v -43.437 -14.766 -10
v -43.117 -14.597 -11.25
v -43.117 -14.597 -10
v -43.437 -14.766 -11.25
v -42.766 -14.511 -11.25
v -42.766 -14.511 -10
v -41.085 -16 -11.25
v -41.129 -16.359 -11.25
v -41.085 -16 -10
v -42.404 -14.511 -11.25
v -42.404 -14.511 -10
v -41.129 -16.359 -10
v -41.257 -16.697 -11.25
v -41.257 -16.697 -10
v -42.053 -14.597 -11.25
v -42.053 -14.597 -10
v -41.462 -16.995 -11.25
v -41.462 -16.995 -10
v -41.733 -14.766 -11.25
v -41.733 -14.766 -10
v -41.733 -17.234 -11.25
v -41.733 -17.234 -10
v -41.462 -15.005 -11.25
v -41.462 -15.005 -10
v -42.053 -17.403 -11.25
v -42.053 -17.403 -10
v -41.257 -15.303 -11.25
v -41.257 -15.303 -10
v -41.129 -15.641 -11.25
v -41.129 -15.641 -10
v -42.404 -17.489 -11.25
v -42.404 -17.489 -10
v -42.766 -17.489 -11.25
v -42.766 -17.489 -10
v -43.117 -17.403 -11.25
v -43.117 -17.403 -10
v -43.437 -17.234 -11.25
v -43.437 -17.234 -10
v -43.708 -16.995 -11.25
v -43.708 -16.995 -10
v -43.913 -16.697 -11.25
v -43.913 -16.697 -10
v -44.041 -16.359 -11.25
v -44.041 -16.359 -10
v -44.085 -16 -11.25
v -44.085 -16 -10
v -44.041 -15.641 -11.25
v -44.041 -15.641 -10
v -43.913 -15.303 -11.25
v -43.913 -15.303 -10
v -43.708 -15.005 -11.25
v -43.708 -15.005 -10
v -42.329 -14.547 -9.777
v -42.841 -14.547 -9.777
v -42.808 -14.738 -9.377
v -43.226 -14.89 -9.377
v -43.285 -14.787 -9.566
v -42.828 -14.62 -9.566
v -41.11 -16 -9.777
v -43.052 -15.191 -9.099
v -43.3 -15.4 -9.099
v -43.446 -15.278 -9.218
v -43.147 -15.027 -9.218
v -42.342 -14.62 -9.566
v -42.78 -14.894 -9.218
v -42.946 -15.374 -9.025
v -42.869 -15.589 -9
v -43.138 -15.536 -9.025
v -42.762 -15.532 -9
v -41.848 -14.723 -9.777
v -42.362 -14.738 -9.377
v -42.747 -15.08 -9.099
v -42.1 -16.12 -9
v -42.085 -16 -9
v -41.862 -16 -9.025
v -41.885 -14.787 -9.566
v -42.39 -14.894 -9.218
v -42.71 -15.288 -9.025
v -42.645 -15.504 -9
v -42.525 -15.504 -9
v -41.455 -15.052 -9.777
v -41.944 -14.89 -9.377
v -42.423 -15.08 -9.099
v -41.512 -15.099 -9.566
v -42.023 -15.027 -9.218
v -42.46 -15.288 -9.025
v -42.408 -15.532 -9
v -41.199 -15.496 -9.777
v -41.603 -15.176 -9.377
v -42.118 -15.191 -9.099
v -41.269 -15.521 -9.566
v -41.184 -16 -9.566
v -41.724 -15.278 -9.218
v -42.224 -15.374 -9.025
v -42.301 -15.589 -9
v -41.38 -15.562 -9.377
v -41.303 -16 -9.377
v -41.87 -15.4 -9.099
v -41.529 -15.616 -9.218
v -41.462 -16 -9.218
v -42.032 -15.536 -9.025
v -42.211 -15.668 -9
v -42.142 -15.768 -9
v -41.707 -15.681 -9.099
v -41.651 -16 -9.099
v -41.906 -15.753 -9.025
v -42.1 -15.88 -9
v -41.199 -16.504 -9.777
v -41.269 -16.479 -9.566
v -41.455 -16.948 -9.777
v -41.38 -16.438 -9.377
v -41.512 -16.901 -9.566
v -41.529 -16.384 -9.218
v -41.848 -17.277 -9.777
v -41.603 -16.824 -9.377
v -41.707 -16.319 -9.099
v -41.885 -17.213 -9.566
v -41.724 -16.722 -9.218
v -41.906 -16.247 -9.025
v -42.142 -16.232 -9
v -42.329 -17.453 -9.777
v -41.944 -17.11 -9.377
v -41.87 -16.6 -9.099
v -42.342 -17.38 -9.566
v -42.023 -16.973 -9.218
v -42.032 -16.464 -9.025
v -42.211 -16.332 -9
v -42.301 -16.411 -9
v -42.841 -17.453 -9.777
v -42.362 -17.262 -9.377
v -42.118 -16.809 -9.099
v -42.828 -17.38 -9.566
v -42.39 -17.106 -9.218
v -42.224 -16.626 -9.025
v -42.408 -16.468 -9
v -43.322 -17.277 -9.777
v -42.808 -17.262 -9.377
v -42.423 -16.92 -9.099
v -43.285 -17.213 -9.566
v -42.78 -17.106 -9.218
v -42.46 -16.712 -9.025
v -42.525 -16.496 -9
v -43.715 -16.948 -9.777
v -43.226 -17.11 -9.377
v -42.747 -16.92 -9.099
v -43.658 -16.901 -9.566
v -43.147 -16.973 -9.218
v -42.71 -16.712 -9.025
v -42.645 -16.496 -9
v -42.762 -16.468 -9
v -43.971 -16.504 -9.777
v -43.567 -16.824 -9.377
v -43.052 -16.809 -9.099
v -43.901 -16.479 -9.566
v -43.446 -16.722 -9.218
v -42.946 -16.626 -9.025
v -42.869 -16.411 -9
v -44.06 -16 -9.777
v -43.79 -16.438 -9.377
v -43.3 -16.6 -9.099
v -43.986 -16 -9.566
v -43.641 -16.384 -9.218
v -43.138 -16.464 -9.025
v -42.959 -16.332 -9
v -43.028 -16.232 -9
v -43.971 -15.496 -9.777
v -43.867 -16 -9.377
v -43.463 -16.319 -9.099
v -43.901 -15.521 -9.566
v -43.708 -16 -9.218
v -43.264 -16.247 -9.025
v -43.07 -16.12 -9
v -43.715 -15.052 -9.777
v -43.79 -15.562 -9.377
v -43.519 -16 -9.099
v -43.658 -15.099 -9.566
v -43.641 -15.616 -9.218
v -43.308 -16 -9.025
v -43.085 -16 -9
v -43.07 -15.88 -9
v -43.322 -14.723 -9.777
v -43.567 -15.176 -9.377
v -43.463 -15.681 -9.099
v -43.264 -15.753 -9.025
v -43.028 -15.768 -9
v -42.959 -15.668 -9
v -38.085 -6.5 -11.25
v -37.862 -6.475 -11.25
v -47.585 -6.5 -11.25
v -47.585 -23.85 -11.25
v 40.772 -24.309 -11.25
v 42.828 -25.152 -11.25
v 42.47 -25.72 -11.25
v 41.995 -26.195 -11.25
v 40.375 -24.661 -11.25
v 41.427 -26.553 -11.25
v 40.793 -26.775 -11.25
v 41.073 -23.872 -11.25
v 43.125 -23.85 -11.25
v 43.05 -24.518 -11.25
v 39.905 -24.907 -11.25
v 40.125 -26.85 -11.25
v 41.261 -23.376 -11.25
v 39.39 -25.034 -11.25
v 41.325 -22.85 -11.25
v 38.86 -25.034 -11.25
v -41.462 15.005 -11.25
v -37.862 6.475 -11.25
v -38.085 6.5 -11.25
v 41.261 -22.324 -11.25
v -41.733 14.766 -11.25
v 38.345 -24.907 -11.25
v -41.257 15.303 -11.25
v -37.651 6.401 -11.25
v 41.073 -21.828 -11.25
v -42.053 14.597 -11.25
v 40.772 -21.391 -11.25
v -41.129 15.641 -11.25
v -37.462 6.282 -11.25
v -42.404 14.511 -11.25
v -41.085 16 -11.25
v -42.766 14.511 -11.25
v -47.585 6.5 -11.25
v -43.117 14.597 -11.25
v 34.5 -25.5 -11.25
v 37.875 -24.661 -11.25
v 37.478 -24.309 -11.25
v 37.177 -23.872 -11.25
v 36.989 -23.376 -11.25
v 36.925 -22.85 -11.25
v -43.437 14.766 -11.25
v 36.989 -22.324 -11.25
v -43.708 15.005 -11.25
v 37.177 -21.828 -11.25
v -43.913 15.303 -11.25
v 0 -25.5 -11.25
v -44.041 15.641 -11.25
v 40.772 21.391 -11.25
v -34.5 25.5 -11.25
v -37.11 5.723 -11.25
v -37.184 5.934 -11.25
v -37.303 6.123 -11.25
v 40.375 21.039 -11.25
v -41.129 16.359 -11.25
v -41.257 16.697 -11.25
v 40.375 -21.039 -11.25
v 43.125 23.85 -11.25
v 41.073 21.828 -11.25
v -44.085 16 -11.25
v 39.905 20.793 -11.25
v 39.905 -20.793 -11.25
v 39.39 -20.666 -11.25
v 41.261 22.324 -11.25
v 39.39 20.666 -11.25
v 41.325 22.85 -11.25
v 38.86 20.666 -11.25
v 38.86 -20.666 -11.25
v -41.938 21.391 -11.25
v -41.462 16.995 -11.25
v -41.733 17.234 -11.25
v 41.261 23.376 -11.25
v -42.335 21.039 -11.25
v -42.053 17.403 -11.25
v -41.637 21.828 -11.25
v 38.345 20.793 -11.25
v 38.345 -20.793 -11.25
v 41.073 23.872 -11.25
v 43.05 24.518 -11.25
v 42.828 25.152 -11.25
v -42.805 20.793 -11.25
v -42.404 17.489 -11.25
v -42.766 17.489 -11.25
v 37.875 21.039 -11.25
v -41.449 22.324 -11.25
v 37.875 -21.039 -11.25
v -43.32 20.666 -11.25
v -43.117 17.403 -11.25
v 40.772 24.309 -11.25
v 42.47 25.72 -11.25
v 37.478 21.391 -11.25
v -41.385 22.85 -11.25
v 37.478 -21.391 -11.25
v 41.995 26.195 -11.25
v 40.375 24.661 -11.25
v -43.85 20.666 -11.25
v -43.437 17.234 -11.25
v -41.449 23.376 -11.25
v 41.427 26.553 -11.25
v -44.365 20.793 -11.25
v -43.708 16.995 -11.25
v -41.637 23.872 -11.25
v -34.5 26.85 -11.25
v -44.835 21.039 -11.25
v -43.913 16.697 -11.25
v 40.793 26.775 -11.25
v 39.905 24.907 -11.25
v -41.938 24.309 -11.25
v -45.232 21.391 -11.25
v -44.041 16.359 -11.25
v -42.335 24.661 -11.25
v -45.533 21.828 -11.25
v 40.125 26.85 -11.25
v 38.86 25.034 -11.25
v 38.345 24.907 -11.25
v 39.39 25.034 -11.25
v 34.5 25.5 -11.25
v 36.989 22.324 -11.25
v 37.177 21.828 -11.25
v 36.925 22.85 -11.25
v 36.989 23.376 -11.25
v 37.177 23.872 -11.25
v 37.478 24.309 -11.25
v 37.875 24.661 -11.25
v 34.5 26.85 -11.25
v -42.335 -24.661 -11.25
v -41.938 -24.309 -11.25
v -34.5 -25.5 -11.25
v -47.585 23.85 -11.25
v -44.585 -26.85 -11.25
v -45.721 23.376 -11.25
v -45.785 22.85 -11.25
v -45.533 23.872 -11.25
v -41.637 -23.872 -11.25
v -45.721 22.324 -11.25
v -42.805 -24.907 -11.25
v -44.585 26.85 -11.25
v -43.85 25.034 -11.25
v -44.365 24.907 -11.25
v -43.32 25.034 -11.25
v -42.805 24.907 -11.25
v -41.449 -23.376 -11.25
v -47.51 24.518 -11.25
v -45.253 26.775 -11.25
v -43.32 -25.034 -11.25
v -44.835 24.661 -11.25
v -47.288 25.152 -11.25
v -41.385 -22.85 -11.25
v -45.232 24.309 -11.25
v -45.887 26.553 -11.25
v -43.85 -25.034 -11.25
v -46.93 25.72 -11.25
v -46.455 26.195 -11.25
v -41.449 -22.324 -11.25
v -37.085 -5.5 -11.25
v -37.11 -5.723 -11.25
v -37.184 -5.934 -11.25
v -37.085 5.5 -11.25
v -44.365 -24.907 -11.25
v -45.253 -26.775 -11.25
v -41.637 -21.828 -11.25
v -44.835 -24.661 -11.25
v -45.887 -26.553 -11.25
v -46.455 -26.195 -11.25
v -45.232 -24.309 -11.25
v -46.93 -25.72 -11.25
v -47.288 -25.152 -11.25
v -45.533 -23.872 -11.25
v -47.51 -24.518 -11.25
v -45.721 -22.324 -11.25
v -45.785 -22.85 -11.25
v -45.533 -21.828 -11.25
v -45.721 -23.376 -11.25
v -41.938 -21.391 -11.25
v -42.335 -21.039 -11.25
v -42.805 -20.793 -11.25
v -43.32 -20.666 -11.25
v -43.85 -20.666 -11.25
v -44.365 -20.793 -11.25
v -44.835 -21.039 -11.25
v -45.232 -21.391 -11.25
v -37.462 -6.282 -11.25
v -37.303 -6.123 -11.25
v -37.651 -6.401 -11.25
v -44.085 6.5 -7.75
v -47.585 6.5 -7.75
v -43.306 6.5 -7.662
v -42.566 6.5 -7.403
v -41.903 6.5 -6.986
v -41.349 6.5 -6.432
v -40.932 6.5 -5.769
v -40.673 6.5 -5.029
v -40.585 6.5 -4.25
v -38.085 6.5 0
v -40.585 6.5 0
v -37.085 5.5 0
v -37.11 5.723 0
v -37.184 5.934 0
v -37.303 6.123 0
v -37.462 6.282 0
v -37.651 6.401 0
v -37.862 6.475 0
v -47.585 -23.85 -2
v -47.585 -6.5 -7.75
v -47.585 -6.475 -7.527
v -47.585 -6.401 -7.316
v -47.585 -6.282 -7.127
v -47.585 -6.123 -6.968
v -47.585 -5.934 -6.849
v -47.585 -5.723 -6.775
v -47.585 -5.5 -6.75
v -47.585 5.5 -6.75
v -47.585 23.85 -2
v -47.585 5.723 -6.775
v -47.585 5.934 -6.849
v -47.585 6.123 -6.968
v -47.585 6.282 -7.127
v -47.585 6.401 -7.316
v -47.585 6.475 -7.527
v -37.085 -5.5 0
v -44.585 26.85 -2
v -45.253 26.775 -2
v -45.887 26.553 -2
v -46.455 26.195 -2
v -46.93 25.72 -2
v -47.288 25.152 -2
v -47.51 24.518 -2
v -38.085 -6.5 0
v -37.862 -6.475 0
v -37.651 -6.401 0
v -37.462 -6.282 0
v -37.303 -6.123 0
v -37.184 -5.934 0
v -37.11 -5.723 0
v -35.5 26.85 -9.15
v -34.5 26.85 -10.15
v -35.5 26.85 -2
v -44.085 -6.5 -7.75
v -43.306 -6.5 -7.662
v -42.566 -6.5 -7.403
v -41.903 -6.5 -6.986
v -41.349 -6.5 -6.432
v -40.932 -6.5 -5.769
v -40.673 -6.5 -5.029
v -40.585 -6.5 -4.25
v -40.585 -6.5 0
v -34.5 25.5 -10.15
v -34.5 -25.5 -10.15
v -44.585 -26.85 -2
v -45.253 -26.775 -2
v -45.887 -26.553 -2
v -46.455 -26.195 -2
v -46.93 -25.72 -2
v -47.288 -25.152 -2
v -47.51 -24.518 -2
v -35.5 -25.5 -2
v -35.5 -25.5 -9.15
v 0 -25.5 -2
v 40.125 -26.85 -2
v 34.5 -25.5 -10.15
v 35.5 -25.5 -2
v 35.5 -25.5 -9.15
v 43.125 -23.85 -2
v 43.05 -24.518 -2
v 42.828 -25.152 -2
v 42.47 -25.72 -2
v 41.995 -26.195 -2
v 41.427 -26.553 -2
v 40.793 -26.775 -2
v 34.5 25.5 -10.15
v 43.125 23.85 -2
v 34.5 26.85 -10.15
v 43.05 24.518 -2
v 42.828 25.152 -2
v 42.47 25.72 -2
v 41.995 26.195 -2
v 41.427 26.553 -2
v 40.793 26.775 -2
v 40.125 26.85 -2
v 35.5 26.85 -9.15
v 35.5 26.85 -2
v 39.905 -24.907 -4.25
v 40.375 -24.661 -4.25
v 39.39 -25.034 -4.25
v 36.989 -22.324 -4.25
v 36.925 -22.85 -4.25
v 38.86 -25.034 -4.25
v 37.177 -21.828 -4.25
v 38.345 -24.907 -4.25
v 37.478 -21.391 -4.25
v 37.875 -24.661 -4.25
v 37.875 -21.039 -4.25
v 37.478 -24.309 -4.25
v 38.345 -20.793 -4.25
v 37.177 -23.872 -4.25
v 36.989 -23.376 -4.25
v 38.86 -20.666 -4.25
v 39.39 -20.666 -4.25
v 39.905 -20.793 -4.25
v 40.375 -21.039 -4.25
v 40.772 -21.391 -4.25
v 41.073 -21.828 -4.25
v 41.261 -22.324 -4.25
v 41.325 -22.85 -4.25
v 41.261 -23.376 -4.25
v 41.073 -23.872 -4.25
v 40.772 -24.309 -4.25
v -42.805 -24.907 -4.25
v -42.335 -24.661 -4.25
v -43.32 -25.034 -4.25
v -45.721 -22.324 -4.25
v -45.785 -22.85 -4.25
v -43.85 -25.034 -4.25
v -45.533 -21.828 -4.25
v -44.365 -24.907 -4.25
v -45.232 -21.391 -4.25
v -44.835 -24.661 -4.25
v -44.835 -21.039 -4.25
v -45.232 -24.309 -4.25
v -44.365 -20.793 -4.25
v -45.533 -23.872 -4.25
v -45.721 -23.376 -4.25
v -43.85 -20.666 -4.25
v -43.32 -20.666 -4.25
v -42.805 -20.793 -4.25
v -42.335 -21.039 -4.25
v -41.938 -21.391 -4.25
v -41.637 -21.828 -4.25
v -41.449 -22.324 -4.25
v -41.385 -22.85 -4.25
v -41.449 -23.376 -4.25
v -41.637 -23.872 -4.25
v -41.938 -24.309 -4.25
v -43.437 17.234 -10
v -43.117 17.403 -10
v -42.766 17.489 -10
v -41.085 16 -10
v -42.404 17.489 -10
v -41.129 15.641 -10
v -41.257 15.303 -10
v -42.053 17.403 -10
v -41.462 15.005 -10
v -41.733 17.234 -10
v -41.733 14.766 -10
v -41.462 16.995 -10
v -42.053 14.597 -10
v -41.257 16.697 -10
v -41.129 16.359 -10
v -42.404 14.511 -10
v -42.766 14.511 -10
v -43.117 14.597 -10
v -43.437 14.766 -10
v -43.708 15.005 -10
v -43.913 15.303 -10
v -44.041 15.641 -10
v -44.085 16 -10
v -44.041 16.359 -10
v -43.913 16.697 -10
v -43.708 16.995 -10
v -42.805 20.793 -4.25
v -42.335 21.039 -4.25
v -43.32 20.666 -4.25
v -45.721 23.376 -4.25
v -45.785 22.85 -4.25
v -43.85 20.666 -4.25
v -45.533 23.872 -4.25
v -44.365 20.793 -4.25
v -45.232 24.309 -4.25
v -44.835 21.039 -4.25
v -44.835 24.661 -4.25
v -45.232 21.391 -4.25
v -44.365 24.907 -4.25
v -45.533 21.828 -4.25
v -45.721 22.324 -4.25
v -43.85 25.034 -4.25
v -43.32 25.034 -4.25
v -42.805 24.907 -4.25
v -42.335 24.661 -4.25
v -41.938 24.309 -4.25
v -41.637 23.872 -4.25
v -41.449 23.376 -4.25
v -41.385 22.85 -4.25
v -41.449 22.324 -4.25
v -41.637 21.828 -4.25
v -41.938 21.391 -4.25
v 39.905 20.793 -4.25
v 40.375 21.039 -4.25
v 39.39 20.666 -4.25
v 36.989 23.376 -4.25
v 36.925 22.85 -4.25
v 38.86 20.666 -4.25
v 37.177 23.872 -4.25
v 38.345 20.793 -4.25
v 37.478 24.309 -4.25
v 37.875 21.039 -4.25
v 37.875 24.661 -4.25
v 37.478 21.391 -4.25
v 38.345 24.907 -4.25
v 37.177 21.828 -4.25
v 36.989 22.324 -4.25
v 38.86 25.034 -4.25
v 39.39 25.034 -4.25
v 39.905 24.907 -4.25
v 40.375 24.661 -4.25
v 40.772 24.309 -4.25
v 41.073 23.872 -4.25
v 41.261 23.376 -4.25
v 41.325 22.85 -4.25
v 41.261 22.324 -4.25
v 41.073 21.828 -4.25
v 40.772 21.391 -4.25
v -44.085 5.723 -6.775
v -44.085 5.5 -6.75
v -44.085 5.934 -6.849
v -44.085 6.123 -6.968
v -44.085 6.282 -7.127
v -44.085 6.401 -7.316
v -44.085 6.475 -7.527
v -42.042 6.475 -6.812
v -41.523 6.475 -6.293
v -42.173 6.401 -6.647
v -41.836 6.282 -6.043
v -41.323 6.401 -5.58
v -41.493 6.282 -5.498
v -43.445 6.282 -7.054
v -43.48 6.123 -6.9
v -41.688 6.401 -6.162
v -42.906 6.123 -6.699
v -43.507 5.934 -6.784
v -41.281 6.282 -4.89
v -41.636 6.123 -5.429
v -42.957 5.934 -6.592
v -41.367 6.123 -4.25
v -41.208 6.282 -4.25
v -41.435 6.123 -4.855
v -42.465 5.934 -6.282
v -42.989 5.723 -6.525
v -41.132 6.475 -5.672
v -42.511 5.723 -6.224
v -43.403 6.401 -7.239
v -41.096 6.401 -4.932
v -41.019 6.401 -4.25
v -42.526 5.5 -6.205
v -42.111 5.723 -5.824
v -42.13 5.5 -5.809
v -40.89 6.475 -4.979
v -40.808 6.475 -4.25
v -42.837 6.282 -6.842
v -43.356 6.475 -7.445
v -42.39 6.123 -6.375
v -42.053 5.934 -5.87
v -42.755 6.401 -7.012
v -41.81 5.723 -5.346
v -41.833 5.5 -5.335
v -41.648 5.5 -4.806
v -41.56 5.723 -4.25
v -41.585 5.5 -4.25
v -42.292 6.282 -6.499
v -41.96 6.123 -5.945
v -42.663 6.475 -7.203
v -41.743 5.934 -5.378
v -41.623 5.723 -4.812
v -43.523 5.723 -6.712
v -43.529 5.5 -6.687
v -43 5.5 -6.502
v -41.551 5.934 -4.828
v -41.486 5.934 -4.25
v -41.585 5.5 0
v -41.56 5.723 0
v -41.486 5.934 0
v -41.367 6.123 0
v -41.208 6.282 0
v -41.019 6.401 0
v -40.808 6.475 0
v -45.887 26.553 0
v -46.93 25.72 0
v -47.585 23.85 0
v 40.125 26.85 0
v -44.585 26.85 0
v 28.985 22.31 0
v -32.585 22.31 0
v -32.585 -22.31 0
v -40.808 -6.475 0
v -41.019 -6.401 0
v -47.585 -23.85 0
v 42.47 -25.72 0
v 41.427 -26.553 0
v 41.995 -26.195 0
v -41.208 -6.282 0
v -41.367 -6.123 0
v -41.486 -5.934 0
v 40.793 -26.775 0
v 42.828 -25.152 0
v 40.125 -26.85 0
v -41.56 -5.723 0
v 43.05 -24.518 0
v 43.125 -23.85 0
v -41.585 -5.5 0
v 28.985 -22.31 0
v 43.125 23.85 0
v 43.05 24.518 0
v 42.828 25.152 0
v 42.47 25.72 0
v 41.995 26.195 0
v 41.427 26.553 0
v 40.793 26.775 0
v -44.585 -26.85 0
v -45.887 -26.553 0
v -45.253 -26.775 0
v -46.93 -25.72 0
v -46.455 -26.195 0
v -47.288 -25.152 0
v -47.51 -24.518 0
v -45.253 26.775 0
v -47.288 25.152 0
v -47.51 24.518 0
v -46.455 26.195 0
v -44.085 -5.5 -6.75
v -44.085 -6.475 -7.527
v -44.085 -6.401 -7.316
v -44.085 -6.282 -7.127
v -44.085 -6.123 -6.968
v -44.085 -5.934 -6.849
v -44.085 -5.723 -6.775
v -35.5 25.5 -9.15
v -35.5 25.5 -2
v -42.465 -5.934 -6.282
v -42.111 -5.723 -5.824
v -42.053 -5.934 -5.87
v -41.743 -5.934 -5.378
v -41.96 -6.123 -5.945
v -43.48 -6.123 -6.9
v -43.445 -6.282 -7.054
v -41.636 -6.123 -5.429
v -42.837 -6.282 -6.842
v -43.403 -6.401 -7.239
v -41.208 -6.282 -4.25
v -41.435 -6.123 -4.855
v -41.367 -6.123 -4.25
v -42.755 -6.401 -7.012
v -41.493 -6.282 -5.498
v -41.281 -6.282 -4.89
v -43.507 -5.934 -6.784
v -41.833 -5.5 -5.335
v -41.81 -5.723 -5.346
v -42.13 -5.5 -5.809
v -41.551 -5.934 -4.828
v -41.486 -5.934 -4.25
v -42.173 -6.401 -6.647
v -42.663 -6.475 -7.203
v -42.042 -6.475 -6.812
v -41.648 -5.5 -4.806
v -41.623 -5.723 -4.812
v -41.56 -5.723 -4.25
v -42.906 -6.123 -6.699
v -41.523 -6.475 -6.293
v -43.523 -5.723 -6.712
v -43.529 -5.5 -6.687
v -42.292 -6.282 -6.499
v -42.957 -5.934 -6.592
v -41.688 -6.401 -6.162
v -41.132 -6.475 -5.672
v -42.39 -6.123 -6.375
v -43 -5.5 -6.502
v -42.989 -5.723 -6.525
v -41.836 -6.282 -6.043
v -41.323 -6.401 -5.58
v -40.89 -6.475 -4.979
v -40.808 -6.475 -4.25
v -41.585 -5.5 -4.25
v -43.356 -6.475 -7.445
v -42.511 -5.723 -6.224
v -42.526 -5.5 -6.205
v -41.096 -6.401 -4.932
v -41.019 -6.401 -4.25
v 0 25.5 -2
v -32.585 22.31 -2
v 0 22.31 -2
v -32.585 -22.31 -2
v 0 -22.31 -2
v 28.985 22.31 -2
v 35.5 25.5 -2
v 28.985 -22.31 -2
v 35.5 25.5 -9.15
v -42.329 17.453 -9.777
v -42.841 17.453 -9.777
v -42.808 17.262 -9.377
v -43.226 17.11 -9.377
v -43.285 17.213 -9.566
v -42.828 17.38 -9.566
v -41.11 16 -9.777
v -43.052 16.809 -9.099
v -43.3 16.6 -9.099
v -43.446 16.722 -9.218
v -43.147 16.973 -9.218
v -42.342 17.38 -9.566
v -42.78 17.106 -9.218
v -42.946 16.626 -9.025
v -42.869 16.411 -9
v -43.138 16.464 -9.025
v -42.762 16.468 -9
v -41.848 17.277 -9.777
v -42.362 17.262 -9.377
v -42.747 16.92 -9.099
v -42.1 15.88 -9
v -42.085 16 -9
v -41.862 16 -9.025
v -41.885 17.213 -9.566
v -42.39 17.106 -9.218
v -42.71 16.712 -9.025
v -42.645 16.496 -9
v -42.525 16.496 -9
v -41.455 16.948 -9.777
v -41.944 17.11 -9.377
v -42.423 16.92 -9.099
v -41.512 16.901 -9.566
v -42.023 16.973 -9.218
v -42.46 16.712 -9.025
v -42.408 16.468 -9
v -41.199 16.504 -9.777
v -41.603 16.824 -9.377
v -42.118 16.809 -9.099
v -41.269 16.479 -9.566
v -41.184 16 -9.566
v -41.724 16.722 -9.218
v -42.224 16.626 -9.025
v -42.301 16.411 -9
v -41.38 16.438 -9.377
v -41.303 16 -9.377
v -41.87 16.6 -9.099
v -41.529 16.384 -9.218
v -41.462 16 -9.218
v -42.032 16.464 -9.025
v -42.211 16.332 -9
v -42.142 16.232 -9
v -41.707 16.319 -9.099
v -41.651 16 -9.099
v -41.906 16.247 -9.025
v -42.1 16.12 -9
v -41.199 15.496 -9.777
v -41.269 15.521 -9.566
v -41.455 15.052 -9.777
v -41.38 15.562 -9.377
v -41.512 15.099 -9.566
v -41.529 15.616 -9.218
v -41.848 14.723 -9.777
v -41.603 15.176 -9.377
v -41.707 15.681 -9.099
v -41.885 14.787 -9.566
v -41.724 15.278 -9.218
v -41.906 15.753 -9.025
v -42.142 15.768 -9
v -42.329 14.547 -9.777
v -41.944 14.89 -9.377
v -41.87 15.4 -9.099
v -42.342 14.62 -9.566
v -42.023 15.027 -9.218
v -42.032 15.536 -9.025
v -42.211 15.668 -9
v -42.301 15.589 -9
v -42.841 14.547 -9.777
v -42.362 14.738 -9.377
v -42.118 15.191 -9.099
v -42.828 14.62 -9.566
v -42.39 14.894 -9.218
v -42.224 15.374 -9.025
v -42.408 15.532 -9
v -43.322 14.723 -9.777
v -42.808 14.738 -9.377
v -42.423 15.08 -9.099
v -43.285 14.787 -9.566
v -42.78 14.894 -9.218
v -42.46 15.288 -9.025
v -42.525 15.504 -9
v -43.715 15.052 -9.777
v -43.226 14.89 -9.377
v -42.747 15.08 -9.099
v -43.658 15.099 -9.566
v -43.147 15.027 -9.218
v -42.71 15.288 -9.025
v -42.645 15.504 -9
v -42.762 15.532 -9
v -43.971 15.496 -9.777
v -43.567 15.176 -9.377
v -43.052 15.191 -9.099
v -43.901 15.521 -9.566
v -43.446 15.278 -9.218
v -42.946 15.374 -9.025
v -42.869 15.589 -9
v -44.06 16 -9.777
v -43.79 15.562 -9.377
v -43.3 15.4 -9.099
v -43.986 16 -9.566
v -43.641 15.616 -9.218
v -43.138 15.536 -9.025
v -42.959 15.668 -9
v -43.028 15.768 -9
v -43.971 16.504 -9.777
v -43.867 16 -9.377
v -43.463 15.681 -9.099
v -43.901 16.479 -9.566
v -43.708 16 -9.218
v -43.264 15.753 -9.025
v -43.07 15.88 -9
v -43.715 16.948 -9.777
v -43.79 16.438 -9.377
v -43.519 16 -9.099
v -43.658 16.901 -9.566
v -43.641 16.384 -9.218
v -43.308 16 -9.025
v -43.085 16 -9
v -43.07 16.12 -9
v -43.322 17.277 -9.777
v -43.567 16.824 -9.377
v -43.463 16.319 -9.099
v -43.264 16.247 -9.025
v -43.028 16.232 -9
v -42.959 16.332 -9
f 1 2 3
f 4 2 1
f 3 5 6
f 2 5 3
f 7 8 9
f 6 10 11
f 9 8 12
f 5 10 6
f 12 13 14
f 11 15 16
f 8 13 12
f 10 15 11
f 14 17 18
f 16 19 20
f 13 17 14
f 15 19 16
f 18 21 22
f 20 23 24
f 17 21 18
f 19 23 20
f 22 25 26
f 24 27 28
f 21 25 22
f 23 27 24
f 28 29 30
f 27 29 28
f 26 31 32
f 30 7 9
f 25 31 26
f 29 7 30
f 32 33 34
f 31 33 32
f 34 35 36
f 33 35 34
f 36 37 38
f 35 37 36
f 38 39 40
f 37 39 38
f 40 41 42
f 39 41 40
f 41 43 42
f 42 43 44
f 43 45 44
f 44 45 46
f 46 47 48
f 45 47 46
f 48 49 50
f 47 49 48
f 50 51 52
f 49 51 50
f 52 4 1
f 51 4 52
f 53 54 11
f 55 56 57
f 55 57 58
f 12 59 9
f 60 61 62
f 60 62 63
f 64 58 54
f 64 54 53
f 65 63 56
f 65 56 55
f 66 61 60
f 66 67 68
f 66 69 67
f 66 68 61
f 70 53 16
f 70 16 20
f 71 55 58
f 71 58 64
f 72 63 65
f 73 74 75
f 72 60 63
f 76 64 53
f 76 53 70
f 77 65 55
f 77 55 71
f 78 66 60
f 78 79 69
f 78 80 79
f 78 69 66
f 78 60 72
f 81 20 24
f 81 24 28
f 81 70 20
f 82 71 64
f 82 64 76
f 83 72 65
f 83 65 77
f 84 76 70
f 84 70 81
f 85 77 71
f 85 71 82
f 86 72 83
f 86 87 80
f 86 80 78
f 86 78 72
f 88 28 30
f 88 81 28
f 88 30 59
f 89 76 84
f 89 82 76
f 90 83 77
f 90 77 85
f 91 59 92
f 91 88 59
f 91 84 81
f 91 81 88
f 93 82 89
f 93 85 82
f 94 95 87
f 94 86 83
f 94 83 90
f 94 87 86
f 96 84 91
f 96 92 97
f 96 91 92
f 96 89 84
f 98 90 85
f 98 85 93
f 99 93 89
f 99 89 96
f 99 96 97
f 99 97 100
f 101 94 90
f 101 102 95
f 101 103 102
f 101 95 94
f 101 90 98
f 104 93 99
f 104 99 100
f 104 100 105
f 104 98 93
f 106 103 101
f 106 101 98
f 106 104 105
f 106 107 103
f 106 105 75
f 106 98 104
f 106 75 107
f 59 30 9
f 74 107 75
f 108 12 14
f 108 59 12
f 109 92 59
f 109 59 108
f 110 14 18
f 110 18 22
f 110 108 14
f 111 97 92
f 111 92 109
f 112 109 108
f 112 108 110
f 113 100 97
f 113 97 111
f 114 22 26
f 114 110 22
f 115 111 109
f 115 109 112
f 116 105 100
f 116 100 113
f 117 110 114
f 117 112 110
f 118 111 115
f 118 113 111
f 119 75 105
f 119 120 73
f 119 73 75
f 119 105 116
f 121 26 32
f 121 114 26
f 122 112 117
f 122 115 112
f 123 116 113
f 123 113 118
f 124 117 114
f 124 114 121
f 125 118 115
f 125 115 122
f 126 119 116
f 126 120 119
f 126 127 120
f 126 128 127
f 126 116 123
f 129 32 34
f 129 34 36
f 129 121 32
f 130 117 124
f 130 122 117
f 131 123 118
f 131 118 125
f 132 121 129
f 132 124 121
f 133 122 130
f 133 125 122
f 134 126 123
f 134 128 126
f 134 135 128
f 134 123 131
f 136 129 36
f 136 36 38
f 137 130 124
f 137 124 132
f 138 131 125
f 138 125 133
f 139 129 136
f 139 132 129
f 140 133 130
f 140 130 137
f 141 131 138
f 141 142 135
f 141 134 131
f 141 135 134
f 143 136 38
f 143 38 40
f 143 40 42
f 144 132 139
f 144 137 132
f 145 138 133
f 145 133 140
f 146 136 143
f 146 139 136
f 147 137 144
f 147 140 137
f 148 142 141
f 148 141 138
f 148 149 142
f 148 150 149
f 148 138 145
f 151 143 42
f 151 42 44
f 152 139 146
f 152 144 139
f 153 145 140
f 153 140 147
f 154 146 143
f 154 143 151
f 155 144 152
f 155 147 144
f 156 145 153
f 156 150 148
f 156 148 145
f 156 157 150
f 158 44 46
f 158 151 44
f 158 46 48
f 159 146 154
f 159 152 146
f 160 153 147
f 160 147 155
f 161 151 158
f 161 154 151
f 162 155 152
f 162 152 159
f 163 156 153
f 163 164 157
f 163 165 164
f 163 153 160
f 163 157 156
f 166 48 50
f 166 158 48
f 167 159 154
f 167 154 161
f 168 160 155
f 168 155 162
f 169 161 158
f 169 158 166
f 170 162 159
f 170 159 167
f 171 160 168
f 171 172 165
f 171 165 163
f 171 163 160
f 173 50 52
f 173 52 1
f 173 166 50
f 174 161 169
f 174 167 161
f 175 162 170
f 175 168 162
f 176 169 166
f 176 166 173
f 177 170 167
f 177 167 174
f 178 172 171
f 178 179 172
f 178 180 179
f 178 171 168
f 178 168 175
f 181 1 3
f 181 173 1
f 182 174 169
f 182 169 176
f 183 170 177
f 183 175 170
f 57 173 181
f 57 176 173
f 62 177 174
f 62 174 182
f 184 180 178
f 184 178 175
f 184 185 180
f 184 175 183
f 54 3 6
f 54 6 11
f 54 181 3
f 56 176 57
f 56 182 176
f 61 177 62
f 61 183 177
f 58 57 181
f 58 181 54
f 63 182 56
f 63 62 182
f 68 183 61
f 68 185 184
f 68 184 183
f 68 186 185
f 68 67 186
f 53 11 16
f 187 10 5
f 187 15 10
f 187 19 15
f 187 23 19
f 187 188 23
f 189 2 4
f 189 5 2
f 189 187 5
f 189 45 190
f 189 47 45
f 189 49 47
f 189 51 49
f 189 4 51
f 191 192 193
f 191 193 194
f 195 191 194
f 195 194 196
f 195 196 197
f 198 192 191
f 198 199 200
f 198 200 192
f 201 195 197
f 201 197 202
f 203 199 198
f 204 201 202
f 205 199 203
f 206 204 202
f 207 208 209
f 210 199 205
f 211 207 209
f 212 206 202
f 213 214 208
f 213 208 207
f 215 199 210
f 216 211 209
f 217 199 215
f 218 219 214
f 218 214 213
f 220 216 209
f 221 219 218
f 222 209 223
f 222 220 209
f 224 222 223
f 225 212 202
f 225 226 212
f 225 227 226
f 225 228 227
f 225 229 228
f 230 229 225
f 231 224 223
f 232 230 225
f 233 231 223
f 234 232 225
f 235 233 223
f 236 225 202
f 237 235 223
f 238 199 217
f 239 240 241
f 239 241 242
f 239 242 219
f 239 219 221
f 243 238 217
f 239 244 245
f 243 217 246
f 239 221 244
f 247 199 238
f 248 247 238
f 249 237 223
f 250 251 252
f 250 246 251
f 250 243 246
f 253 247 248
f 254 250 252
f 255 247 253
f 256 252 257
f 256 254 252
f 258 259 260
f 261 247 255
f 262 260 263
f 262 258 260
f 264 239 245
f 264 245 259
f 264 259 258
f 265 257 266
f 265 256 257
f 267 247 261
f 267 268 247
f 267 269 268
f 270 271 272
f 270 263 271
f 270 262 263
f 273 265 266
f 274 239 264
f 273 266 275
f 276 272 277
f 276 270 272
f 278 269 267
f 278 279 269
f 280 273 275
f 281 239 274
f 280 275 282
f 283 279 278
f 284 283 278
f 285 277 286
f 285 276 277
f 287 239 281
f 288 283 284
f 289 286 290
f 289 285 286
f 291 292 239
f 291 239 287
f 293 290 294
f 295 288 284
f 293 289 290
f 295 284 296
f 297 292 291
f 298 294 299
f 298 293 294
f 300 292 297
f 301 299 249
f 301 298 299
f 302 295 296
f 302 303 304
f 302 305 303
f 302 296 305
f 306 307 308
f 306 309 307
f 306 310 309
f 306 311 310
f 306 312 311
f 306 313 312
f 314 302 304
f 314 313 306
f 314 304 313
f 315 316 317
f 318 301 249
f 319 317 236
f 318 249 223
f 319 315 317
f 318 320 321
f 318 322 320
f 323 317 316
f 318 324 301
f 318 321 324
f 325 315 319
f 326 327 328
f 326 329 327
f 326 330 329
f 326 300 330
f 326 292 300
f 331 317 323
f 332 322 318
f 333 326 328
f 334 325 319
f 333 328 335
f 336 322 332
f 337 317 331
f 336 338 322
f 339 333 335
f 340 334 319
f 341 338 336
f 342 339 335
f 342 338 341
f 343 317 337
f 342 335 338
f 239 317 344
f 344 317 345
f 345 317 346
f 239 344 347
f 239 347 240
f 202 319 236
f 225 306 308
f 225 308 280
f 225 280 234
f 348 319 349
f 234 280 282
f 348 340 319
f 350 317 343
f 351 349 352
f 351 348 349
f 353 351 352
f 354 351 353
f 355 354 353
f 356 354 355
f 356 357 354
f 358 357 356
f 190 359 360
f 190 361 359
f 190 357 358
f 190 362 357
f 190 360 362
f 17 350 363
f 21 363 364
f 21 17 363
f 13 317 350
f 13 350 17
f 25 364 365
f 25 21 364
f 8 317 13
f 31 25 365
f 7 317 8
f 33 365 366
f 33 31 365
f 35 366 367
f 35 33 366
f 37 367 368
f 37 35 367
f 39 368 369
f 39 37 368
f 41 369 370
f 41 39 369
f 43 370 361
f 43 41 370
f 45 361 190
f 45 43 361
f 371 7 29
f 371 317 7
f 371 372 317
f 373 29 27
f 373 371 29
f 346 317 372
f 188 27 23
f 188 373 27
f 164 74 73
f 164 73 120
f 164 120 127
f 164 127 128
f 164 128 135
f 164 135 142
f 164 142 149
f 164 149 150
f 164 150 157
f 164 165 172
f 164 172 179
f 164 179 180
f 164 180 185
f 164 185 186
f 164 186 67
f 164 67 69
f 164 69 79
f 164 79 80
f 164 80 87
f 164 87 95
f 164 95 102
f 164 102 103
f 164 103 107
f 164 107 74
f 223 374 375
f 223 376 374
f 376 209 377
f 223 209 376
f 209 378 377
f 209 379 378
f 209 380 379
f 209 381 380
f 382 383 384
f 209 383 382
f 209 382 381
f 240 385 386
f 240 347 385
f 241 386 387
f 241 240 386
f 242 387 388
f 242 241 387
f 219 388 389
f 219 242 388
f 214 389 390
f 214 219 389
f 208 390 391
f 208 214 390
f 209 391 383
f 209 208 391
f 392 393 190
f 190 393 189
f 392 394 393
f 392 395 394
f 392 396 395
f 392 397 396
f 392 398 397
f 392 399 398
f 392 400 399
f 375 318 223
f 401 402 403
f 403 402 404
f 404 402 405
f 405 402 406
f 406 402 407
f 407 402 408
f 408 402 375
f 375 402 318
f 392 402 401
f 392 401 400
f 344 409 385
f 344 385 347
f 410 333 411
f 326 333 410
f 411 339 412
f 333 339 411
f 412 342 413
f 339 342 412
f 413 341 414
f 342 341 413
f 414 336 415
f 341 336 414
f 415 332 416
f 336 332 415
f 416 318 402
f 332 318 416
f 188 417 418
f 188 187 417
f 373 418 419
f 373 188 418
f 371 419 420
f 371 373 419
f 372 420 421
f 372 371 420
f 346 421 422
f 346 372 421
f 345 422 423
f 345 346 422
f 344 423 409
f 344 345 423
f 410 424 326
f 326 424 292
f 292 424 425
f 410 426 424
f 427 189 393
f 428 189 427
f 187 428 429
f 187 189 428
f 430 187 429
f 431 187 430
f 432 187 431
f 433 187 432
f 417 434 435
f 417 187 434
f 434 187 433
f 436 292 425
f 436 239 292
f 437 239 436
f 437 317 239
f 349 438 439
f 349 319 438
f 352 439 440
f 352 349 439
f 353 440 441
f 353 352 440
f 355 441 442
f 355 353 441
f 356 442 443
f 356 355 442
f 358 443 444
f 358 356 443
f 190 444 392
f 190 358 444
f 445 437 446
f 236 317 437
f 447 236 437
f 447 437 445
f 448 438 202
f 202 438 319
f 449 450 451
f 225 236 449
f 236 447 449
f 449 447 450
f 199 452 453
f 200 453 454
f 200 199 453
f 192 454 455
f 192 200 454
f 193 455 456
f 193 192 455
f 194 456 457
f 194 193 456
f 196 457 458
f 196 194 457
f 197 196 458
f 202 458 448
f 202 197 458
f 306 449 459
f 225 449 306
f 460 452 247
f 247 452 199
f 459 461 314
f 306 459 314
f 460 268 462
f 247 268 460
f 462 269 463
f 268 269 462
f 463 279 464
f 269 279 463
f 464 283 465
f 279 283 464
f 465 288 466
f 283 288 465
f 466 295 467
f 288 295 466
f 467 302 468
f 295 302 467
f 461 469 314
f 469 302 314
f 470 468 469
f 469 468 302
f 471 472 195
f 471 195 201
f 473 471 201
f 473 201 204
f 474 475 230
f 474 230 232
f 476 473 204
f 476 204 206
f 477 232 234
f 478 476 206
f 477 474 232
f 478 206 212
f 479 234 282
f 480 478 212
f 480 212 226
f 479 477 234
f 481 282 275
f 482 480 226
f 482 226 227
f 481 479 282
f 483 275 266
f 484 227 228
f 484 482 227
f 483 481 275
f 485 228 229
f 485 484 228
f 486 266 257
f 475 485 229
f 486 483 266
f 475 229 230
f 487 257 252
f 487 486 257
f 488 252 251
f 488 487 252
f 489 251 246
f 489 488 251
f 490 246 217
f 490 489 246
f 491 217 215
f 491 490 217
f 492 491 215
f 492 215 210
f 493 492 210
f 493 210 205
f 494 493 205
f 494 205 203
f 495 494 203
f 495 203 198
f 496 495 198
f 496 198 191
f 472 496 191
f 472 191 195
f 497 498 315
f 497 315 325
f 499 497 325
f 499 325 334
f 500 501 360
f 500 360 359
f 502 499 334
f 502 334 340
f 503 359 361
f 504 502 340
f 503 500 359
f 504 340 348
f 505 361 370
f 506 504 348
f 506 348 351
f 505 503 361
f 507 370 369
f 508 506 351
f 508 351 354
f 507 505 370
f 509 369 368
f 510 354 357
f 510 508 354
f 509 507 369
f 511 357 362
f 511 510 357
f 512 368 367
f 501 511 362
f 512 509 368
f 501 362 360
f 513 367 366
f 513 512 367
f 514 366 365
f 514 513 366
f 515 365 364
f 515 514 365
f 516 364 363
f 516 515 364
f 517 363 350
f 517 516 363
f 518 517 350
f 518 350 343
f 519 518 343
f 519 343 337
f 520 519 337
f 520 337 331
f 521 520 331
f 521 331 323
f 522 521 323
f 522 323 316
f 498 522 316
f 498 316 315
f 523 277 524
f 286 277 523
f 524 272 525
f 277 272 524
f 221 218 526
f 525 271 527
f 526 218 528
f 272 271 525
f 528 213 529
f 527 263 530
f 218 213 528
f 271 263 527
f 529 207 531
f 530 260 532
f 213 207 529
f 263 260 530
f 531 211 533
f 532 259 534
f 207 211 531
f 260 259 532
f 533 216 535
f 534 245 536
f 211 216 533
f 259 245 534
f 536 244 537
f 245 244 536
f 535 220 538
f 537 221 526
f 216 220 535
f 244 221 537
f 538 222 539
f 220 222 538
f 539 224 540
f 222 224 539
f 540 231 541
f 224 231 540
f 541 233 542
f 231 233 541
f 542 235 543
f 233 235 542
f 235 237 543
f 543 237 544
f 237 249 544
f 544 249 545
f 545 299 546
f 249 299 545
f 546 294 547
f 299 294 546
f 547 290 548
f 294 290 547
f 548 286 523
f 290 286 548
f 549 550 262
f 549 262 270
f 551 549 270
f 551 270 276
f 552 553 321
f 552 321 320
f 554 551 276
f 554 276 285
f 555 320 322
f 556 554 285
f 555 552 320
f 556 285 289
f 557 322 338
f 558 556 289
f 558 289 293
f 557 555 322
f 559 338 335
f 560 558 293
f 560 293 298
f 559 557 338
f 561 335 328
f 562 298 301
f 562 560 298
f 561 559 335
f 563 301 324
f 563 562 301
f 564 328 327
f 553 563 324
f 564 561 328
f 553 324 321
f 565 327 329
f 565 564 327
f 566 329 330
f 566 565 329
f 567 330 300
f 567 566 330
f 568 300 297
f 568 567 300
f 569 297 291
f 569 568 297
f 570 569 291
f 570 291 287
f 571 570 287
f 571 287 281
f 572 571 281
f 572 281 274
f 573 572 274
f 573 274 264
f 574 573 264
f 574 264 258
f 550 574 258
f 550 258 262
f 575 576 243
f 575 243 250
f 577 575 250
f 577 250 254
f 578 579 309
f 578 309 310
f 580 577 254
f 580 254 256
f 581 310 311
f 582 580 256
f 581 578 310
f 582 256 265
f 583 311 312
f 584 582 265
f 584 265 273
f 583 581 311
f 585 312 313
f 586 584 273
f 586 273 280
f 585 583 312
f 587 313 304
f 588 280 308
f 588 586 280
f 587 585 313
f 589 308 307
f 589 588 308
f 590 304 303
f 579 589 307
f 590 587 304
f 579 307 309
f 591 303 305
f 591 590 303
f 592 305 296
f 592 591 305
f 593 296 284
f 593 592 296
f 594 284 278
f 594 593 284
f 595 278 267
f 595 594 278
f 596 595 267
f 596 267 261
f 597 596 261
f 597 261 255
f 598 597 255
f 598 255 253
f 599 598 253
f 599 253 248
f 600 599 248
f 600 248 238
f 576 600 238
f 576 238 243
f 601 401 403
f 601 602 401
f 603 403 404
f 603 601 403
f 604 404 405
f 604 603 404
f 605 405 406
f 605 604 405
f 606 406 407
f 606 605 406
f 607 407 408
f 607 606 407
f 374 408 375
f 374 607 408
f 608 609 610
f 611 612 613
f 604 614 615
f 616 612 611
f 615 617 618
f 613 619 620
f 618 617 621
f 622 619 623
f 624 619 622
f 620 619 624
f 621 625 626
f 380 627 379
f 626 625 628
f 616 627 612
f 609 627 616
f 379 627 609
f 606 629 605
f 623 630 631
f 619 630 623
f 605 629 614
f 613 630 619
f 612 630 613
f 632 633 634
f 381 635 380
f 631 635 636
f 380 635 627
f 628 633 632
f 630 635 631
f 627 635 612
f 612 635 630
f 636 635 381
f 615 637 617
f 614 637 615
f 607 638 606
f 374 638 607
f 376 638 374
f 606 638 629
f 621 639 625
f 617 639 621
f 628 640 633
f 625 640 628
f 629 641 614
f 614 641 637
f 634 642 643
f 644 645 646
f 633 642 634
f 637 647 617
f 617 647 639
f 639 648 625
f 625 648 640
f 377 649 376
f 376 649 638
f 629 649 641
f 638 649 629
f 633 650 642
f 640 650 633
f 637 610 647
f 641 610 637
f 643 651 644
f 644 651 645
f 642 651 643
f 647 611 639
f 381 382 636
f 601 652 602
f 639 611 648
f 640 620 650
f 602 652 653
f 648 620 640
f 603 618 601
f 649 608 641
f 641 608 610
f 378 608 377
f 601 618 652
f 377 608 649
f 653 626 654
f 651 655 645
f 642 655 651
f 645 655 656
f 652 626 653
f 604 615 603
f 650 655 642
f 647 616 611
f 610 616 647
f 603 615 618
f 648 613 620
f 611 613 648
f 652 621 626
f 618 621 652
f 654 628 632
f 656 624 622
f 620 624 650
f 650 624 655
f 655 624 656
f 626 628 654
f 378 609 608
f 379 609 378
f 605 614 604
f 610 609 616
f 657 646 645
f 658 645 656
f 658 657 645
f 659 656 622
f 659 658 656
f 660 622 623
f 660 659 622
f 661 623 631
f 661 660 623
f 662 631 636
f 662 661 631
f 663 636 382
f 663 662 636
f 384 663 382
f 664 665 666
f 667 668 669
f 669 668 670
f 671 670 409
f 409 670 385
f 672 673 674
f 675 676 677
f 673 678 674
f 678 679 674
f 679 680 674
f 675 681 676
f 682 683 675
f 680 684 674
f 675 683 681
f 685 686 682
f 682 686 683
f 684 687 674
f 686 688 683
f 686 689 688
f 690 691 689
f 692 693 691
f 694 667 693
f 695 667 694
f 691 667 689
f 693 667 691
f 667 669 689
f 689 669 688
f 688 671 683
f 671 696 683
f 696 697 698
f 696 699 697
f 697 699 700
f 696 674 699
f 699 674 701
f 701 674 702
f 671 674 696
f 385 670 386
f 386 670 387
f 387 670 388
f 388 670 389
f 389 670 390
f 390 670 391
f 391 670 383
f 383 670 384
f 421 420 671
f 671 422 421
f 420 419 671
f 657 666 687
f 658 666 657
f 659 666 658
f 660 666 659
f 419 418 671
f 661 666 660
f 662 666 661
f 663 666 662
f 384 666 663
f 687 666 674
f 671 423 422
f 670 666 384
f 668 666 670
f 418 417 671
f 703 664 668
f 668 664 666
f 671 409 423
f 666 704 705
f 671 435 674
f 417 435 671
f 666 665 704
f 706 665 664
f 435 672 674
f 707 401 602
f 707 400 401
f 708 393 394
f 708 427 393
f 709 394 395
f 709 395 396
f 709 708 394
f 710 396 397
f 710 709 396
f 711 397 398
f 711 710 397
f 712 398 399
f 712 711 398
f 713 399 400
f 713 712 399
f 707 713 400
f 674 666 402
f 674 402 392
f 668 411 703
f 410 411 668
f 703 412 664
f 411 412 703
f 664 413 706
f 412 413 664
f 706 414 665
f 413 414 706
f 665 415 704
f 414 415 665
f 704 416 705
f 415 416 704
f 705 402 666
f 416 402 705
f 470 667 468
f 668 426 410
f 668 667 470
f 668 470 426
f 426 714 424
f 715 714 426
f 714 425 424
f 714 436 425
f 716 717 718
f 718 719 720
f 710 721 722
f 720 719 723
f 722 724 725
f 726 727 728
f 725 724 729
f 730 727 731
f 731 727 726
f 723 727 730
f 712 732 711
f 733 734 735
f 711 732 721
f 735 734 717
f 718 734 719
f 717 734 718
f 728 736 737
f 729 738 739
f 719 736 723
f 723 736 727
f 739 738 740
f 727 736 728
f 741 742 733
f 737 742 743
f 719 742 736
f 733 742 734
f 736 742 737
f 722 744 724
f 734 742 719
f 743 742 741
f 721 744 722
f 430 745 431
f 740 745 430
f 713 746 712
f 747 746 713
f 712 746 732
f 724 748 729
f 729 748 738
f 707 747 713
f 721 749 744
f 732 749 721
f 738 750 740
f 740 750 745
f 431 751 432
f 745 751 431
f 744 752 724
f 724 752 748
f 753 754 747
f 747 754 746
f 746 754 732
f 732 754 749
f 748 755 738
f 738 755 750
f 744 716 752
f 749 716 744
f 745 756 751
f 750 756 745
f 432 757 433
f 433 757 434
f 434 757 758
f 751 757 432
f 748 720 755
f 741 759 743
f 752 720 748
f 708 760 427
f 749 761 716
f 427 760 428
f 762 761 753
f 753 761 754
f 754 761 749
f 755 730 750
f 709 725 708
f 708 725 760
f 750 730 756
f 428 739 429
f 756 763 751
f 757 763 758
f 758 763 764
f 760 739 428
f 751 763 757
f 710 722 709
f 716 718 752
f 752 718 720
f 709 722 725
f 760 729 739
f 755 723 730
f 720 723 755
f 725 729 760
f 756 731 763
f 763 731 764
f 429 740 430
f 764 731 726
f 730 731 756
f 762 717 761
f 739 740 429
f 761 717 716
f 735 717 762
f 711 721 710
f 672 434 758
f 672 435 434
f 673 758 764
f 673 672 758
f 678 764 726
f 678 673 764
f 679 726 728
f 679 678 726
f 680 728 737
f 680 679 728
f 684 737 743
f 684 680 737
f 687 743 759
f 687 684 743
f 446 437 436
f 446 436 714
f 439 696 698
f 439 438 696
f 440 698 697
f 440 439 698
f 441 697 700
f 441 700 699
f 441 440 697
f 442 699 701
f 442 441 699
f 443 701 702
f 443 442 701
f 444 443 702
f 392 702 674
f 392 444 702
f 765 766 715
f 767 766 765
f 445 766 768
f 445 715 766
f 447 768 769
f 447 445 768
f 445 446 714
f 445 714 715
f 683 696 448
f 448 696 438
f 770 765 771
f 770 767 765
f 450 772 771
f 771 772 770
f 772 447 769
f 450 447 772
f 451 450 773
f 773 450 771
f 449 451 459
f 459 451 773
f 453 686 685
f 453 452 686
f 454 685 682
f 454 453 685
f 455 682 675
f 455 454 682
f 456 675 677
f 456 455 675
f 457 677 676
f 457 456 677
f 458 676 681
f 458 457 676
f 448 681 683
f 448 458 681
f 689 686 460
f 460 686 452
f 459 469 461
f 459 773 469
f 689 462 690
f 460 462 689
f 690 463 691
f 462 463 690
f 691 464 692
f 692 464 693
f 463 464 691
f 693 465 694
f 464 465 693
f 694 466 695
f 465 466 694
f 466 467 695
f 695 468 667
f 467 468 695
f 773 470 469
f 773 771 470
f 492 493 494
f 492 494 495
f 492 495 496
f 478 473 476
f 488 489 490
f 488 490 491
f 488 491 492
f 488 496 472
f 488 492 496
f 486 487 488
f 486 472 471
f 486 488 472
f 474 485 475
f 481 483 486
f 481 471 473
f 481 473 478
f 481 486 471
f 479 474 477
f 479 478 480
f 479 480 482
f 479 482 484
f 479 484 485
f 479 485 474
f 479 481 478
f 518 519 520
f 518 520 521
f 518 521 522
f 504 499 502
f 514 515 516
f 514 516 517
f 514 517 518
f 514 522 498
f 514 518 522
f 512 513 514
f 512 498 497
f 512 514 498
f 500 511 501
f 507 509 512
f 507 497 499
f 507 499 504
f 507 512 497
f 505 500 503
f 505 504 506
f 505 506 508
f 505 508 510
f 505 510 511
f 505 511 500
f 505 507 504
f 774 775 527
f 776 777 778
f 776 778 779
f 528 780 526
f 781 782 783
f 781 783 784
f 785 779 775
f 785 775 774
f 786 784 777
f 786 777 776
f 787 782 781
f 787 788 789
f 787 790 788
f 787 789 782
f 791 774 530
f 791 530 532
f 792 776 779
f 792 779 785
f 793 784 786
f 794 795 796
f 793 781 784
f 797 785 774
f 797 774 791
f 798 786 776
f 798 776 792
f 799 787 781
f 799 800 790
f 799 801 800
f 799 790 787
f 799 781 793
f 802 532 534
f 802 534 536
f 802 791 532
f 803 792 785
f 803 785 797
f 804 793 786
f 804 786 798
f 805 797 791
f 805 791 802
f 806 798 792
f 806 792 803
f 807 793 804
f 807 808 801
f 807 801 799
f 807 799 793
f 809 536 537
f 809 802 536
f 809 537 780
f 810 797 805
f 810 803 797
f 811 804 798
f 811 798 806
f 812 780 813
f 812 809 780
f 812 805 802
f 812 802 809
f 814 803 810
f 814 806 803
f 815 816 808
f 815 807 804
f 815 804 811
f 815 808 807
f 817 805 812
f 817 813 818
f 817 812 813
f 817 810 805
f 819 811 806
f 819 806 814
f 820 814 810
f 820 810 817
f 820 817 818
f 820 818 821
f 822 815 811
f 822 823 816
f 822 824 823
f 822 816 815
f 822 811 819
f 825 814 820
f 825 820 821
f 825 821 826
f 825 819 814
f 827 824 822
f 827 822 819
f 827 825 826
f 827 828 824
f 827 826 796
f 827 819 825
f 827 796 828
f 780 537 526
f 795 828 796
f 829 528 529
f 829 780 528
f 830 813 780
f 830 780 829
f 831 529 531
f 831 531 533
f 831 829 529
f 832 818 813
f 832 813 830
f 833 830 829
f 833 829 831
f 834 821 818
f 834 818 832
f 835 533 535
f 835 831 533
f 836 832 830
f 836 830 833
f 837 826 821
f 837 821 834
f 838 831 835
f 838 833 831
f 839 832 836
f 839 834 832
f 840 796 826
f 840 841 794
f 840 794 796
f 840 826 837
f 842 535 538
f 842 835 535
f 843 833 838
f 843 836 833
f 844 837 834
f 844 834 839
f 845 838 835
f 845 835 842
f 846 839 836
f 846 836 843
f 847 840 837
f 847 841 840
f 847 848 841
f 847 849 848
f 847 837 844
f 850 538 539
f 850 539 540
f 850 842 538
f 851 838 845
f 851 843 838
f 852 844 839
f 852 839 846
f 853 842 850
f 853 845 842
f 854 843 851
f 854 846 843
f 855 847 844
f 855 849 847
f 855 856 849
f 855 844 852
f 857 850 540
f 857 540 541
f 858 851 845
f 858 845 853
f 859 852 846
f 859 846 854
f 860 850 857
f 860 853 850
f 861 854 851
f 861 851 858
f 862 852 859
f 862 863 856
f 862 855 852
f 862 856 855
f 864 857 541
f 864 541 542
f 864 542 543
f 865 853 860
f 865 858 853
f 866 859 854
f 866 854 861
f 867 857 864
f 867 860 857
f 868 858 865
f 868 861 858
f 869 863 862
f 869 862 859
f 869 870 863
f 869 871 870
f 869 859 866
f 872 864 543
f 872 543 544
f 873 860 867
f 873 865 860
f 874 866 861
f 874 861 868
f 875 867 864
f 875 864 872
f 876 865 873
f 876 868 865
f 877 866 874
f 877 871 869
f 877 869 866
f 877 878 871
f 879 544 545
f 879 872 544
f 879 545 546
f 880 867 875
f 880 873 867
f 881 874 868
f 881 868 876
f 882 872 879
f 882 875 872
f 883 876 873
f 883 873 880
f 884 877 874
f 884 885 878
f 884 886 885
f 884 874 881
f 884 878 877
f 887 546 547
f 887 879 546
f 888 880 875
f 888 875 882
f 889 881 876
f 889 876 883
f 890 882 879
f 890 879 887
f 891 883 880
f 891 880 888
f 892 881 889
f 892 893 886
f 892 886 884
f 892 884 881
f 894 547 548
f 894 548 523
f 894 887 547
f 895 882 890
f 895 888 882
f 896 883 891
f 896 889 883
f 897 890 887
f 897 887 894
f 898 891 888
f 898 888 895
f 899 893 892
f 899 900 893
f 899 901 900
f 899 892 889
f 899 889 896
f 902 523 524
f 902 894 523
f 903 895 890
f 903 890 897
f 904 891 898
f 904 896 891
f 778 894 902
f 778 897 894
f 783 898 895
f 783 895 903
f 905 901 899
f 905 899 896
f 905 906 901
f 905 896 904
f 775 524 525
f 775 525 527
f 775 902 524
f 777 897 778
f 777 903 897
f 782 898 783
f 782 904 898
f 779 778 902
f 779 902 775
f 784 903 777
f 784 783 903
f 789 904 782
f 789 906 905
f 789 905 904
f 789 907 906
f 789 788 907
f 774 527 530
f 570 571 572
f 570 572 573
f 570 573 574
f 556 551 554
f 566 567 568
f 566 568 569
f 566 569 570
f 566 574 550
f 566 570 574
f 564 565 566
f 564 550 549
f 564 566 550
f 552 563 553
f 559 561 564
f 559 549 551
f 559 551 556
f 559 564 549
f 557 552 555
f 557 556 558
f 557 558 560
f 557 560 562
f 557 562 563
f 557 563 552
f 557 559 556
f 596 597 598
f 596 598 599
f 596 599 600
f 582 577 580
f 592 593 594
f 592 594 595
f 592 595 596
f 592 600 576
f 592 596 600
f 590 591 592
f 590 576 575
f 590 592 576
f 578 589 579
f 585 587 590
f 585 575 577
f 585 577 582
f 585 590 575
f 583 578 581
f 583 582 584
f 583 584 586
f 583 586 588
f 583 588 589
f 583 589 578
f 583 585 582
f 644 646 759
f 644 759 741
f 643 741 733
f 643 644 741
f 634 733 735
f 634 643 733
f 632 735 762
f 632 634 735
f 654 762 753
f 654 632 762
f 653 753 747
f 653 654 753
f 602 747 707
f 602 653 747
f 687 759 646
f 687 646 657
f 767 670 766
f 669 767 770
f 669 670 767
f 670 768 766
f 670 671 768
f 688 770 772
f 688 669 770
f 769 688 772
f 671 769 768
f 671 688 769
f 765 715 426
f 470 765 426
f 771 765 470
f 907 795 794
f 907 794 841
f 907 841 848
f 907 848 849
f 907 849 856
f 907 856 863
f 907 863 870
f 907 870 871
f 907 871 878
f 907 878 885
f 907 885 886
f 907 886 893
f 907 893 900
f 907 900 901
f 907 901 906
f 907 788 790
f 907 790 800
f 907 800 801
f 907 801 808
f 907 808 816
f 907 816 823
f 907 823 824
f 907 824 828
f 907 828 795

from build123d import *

# Parameters (mm, degrees)
SKETCH001_W     = 90.71
SKETCH001_H     = 53.7
PAD_DEPTH       = 2
SKETCH002_W     = 61.57
SKETCH002_H     = 44.62
POCKET_DEPTH    = 2.001
SKETCH004_W     = 90.71
SKETCH004_H     = 53.7
SKETCH004_W_2   = 61.57
SKETCH004_H_2   = 44.62
PAD001_DEPTH    = 9.25
POCKET001_DEPTH = 25.5
POCKET002_DEPTH = 1.351
FILLET_R        = 3
SKETCH006_R     = 2.2
HOLE_DEPTH      = 7
POCKET007_DEPTH = 6.5
FILLET002_R     = 2.5
FILLET003_R     = 1
SKETCH014_R     = 1.5
POCKET008_DEPTH = 2.25
FILLET004_R     = 1


with BuildPart() as part:
    # Sketch001 → Pad (new body)
    with BuildSketch(Plane.XY):
        with Locations((-2.23, 0)):
            Rectangle(SKETCH001_W, SKETCH001_H)
    extrude(amount=-PAD_DEPTH)

    # Sketch002 (on Face5 of Pad) → Pocket (cut, through all)
    with BuildSketch(Plane.XY):
        with Locations((-1.8, 0)):
            Rectangle(SKETCH002_W, SKETCH002_H)
    extrude(amount=-POCKET_DEPTH, mode=Mode.SUBTRACT)

    # Sketch004 (on Face5 of Pocket) → Pad001 (join)
    with BuildSketch(Plane(origin=(0, 0, -2), x_dir=(1, 0, 0), z_dir=(0, 0, -1))):
        with Locations((-2.23, 0)):
            Rectangle(SKETCH004_W, SKETCH004_H)
        with Locations((-1.8, 0)):
            Rectangle(SKETCH004_W_2, SKETCH004_H_2, mode=Mode.SUBTRACT)
    extrude(amount=PAD001_DEPTH)

    # Sketch003 → Pocket001 (cut, symmetric)
    with BuildSketch(Plane.XZ):
        Polygon((-34.5, -15.15), (-34.5, -10.15), (-35.5, -9.15), (-35.5, -2), (0, -2), (0, -15.15), align=None)
    pocket001 = extrude(amount=POCKET001_DEPTH, both=True, mode=Mode.SUBTRACT)

    # Mirrored: Pocket001 across YZ
    add(pocket001.mirror(Plane.YZ), mode=Mode.SUBTRACT)

    # Sketch005 (on Face20 of Mirrored) → Pocket002 (cut, through all)
    with BuildSketch(Plane.XZ.offset(-25.5)):
        Polygon((-34.5, -11.25), (-34.5, -10.15), (-35.5, -9.15), (-35.5, -2), (35.5, -2), (35.5, -9.15), (34.5, -10.15), (34.5, -11.25), align=None)
    extrude(amount=-POCKET002_DEPTH, mode=Mode.SUBTRACT)

    # Fillet
    fillet_edges = [part.edges().sort_by_distance(p)[0] for p in [
        (43.125, 26.85, -1),
        (43.125, 26.85, -6.625),
        (43.125, -26.85, -1),
        (43.125, -26.85, -6.625),
        (-47.585, -26.85, -1),
        (-47.585, -26.85, -6.625),
        (-47.585, 26.85, -1),
        (-47.585, 26.85, -6.625),
    ]]
    fillet(fillet_edges, radius=FILLET_R)

    # Sketch006 (on Face17 of Fillet) → Hole (cut)
    with BuildSketch(Plane(origin=(0, 0, -11.25), x_dir=(1, 0, 0), z_dir=(0, 0, -1))):
        with Locations((-43.585, 22.85)):
            Circle(SKETCH006_R)
        with Locations((-43.585, -22.85)):
            Circle(SKETCH006_R)
        with Locations((39.125, -22.85)):
            Circle(SKETCH006_R)
        with Locations((39.125, 22.85)):
            Circle(SKETCH006_R)
        with Locations((-43.585, 22.85)):
            Circle(SKETCH006_R)
        with Locations((-43.585, -22.85)):
            Circle(SKETCH006_R)
        with Locations((39.125, 22.85)):
            Circle(SKETCH006_R)
        with Locations((39.125, -22.85)):
            Circle(SKETCH006_R)
    extrude(amount=-HOLE_DEPTH, mode=Mode.SUBTRACT)

    # Sketch011 → Pocket007 (cut, symmetric)
    with BuildSketch(Plane.XZ):
        Polygon((-37.085, 0), (-37.085, -11.25), (-47.585, -11.25), (-47.585, -6.75), (-41.585, -6.75), (-41.585, 0), align=None)
    extrude(amount=POCKET007_DEPTH, both=True, mode=Mode.SUBTRACT)

    # Fillet002
    fillet002_edges = [part.edges().sort_by_distance(p)[0] for p in [
        (-41.585, 0, -6.75),
    ]]
    fillet(fillet002_edges, radius=FILLET002_R)

    # Fillet003
    fillet003_edges = [part.edges().sort_by_distance(p)[0] for p in [
        (-41.585, -6.5, -2.125),
        (-37.085, -6.5, -5.625),
        (-37.085, 6.5, -5.625),
        (-41.585, 6.5, -2.125),
    ]]
    fillet(fillet003_edges, radius=FILLET003_R)

    # Sketch014 (on Face4 of Fillet003) → Pocket008 (cut)
    with BuildSketch(Plane(origin=(0, 0, -11.25), x_dir=(1, 0, 0), z_dir=(0, 0, -1))):
        with Locations((-42.585, 16)):
            Circle(SKETCH014_R)
        with Locations((-42.585, -16)):
            Circle(SKETCH014_R)
    extrude(amount=-POCKET008_DEPTH, mode=Mode.SUBTRACT)

    # Fillet004
    fillet004_edges = [part.edges().sort_by_distance(p)[0] for p in [
        (-44.085, -16, -9),
        (-44.085, 16, -9),
    ]]
    fillet(fillet004_edges, radius=FILLET004_R)


solid = part.part
